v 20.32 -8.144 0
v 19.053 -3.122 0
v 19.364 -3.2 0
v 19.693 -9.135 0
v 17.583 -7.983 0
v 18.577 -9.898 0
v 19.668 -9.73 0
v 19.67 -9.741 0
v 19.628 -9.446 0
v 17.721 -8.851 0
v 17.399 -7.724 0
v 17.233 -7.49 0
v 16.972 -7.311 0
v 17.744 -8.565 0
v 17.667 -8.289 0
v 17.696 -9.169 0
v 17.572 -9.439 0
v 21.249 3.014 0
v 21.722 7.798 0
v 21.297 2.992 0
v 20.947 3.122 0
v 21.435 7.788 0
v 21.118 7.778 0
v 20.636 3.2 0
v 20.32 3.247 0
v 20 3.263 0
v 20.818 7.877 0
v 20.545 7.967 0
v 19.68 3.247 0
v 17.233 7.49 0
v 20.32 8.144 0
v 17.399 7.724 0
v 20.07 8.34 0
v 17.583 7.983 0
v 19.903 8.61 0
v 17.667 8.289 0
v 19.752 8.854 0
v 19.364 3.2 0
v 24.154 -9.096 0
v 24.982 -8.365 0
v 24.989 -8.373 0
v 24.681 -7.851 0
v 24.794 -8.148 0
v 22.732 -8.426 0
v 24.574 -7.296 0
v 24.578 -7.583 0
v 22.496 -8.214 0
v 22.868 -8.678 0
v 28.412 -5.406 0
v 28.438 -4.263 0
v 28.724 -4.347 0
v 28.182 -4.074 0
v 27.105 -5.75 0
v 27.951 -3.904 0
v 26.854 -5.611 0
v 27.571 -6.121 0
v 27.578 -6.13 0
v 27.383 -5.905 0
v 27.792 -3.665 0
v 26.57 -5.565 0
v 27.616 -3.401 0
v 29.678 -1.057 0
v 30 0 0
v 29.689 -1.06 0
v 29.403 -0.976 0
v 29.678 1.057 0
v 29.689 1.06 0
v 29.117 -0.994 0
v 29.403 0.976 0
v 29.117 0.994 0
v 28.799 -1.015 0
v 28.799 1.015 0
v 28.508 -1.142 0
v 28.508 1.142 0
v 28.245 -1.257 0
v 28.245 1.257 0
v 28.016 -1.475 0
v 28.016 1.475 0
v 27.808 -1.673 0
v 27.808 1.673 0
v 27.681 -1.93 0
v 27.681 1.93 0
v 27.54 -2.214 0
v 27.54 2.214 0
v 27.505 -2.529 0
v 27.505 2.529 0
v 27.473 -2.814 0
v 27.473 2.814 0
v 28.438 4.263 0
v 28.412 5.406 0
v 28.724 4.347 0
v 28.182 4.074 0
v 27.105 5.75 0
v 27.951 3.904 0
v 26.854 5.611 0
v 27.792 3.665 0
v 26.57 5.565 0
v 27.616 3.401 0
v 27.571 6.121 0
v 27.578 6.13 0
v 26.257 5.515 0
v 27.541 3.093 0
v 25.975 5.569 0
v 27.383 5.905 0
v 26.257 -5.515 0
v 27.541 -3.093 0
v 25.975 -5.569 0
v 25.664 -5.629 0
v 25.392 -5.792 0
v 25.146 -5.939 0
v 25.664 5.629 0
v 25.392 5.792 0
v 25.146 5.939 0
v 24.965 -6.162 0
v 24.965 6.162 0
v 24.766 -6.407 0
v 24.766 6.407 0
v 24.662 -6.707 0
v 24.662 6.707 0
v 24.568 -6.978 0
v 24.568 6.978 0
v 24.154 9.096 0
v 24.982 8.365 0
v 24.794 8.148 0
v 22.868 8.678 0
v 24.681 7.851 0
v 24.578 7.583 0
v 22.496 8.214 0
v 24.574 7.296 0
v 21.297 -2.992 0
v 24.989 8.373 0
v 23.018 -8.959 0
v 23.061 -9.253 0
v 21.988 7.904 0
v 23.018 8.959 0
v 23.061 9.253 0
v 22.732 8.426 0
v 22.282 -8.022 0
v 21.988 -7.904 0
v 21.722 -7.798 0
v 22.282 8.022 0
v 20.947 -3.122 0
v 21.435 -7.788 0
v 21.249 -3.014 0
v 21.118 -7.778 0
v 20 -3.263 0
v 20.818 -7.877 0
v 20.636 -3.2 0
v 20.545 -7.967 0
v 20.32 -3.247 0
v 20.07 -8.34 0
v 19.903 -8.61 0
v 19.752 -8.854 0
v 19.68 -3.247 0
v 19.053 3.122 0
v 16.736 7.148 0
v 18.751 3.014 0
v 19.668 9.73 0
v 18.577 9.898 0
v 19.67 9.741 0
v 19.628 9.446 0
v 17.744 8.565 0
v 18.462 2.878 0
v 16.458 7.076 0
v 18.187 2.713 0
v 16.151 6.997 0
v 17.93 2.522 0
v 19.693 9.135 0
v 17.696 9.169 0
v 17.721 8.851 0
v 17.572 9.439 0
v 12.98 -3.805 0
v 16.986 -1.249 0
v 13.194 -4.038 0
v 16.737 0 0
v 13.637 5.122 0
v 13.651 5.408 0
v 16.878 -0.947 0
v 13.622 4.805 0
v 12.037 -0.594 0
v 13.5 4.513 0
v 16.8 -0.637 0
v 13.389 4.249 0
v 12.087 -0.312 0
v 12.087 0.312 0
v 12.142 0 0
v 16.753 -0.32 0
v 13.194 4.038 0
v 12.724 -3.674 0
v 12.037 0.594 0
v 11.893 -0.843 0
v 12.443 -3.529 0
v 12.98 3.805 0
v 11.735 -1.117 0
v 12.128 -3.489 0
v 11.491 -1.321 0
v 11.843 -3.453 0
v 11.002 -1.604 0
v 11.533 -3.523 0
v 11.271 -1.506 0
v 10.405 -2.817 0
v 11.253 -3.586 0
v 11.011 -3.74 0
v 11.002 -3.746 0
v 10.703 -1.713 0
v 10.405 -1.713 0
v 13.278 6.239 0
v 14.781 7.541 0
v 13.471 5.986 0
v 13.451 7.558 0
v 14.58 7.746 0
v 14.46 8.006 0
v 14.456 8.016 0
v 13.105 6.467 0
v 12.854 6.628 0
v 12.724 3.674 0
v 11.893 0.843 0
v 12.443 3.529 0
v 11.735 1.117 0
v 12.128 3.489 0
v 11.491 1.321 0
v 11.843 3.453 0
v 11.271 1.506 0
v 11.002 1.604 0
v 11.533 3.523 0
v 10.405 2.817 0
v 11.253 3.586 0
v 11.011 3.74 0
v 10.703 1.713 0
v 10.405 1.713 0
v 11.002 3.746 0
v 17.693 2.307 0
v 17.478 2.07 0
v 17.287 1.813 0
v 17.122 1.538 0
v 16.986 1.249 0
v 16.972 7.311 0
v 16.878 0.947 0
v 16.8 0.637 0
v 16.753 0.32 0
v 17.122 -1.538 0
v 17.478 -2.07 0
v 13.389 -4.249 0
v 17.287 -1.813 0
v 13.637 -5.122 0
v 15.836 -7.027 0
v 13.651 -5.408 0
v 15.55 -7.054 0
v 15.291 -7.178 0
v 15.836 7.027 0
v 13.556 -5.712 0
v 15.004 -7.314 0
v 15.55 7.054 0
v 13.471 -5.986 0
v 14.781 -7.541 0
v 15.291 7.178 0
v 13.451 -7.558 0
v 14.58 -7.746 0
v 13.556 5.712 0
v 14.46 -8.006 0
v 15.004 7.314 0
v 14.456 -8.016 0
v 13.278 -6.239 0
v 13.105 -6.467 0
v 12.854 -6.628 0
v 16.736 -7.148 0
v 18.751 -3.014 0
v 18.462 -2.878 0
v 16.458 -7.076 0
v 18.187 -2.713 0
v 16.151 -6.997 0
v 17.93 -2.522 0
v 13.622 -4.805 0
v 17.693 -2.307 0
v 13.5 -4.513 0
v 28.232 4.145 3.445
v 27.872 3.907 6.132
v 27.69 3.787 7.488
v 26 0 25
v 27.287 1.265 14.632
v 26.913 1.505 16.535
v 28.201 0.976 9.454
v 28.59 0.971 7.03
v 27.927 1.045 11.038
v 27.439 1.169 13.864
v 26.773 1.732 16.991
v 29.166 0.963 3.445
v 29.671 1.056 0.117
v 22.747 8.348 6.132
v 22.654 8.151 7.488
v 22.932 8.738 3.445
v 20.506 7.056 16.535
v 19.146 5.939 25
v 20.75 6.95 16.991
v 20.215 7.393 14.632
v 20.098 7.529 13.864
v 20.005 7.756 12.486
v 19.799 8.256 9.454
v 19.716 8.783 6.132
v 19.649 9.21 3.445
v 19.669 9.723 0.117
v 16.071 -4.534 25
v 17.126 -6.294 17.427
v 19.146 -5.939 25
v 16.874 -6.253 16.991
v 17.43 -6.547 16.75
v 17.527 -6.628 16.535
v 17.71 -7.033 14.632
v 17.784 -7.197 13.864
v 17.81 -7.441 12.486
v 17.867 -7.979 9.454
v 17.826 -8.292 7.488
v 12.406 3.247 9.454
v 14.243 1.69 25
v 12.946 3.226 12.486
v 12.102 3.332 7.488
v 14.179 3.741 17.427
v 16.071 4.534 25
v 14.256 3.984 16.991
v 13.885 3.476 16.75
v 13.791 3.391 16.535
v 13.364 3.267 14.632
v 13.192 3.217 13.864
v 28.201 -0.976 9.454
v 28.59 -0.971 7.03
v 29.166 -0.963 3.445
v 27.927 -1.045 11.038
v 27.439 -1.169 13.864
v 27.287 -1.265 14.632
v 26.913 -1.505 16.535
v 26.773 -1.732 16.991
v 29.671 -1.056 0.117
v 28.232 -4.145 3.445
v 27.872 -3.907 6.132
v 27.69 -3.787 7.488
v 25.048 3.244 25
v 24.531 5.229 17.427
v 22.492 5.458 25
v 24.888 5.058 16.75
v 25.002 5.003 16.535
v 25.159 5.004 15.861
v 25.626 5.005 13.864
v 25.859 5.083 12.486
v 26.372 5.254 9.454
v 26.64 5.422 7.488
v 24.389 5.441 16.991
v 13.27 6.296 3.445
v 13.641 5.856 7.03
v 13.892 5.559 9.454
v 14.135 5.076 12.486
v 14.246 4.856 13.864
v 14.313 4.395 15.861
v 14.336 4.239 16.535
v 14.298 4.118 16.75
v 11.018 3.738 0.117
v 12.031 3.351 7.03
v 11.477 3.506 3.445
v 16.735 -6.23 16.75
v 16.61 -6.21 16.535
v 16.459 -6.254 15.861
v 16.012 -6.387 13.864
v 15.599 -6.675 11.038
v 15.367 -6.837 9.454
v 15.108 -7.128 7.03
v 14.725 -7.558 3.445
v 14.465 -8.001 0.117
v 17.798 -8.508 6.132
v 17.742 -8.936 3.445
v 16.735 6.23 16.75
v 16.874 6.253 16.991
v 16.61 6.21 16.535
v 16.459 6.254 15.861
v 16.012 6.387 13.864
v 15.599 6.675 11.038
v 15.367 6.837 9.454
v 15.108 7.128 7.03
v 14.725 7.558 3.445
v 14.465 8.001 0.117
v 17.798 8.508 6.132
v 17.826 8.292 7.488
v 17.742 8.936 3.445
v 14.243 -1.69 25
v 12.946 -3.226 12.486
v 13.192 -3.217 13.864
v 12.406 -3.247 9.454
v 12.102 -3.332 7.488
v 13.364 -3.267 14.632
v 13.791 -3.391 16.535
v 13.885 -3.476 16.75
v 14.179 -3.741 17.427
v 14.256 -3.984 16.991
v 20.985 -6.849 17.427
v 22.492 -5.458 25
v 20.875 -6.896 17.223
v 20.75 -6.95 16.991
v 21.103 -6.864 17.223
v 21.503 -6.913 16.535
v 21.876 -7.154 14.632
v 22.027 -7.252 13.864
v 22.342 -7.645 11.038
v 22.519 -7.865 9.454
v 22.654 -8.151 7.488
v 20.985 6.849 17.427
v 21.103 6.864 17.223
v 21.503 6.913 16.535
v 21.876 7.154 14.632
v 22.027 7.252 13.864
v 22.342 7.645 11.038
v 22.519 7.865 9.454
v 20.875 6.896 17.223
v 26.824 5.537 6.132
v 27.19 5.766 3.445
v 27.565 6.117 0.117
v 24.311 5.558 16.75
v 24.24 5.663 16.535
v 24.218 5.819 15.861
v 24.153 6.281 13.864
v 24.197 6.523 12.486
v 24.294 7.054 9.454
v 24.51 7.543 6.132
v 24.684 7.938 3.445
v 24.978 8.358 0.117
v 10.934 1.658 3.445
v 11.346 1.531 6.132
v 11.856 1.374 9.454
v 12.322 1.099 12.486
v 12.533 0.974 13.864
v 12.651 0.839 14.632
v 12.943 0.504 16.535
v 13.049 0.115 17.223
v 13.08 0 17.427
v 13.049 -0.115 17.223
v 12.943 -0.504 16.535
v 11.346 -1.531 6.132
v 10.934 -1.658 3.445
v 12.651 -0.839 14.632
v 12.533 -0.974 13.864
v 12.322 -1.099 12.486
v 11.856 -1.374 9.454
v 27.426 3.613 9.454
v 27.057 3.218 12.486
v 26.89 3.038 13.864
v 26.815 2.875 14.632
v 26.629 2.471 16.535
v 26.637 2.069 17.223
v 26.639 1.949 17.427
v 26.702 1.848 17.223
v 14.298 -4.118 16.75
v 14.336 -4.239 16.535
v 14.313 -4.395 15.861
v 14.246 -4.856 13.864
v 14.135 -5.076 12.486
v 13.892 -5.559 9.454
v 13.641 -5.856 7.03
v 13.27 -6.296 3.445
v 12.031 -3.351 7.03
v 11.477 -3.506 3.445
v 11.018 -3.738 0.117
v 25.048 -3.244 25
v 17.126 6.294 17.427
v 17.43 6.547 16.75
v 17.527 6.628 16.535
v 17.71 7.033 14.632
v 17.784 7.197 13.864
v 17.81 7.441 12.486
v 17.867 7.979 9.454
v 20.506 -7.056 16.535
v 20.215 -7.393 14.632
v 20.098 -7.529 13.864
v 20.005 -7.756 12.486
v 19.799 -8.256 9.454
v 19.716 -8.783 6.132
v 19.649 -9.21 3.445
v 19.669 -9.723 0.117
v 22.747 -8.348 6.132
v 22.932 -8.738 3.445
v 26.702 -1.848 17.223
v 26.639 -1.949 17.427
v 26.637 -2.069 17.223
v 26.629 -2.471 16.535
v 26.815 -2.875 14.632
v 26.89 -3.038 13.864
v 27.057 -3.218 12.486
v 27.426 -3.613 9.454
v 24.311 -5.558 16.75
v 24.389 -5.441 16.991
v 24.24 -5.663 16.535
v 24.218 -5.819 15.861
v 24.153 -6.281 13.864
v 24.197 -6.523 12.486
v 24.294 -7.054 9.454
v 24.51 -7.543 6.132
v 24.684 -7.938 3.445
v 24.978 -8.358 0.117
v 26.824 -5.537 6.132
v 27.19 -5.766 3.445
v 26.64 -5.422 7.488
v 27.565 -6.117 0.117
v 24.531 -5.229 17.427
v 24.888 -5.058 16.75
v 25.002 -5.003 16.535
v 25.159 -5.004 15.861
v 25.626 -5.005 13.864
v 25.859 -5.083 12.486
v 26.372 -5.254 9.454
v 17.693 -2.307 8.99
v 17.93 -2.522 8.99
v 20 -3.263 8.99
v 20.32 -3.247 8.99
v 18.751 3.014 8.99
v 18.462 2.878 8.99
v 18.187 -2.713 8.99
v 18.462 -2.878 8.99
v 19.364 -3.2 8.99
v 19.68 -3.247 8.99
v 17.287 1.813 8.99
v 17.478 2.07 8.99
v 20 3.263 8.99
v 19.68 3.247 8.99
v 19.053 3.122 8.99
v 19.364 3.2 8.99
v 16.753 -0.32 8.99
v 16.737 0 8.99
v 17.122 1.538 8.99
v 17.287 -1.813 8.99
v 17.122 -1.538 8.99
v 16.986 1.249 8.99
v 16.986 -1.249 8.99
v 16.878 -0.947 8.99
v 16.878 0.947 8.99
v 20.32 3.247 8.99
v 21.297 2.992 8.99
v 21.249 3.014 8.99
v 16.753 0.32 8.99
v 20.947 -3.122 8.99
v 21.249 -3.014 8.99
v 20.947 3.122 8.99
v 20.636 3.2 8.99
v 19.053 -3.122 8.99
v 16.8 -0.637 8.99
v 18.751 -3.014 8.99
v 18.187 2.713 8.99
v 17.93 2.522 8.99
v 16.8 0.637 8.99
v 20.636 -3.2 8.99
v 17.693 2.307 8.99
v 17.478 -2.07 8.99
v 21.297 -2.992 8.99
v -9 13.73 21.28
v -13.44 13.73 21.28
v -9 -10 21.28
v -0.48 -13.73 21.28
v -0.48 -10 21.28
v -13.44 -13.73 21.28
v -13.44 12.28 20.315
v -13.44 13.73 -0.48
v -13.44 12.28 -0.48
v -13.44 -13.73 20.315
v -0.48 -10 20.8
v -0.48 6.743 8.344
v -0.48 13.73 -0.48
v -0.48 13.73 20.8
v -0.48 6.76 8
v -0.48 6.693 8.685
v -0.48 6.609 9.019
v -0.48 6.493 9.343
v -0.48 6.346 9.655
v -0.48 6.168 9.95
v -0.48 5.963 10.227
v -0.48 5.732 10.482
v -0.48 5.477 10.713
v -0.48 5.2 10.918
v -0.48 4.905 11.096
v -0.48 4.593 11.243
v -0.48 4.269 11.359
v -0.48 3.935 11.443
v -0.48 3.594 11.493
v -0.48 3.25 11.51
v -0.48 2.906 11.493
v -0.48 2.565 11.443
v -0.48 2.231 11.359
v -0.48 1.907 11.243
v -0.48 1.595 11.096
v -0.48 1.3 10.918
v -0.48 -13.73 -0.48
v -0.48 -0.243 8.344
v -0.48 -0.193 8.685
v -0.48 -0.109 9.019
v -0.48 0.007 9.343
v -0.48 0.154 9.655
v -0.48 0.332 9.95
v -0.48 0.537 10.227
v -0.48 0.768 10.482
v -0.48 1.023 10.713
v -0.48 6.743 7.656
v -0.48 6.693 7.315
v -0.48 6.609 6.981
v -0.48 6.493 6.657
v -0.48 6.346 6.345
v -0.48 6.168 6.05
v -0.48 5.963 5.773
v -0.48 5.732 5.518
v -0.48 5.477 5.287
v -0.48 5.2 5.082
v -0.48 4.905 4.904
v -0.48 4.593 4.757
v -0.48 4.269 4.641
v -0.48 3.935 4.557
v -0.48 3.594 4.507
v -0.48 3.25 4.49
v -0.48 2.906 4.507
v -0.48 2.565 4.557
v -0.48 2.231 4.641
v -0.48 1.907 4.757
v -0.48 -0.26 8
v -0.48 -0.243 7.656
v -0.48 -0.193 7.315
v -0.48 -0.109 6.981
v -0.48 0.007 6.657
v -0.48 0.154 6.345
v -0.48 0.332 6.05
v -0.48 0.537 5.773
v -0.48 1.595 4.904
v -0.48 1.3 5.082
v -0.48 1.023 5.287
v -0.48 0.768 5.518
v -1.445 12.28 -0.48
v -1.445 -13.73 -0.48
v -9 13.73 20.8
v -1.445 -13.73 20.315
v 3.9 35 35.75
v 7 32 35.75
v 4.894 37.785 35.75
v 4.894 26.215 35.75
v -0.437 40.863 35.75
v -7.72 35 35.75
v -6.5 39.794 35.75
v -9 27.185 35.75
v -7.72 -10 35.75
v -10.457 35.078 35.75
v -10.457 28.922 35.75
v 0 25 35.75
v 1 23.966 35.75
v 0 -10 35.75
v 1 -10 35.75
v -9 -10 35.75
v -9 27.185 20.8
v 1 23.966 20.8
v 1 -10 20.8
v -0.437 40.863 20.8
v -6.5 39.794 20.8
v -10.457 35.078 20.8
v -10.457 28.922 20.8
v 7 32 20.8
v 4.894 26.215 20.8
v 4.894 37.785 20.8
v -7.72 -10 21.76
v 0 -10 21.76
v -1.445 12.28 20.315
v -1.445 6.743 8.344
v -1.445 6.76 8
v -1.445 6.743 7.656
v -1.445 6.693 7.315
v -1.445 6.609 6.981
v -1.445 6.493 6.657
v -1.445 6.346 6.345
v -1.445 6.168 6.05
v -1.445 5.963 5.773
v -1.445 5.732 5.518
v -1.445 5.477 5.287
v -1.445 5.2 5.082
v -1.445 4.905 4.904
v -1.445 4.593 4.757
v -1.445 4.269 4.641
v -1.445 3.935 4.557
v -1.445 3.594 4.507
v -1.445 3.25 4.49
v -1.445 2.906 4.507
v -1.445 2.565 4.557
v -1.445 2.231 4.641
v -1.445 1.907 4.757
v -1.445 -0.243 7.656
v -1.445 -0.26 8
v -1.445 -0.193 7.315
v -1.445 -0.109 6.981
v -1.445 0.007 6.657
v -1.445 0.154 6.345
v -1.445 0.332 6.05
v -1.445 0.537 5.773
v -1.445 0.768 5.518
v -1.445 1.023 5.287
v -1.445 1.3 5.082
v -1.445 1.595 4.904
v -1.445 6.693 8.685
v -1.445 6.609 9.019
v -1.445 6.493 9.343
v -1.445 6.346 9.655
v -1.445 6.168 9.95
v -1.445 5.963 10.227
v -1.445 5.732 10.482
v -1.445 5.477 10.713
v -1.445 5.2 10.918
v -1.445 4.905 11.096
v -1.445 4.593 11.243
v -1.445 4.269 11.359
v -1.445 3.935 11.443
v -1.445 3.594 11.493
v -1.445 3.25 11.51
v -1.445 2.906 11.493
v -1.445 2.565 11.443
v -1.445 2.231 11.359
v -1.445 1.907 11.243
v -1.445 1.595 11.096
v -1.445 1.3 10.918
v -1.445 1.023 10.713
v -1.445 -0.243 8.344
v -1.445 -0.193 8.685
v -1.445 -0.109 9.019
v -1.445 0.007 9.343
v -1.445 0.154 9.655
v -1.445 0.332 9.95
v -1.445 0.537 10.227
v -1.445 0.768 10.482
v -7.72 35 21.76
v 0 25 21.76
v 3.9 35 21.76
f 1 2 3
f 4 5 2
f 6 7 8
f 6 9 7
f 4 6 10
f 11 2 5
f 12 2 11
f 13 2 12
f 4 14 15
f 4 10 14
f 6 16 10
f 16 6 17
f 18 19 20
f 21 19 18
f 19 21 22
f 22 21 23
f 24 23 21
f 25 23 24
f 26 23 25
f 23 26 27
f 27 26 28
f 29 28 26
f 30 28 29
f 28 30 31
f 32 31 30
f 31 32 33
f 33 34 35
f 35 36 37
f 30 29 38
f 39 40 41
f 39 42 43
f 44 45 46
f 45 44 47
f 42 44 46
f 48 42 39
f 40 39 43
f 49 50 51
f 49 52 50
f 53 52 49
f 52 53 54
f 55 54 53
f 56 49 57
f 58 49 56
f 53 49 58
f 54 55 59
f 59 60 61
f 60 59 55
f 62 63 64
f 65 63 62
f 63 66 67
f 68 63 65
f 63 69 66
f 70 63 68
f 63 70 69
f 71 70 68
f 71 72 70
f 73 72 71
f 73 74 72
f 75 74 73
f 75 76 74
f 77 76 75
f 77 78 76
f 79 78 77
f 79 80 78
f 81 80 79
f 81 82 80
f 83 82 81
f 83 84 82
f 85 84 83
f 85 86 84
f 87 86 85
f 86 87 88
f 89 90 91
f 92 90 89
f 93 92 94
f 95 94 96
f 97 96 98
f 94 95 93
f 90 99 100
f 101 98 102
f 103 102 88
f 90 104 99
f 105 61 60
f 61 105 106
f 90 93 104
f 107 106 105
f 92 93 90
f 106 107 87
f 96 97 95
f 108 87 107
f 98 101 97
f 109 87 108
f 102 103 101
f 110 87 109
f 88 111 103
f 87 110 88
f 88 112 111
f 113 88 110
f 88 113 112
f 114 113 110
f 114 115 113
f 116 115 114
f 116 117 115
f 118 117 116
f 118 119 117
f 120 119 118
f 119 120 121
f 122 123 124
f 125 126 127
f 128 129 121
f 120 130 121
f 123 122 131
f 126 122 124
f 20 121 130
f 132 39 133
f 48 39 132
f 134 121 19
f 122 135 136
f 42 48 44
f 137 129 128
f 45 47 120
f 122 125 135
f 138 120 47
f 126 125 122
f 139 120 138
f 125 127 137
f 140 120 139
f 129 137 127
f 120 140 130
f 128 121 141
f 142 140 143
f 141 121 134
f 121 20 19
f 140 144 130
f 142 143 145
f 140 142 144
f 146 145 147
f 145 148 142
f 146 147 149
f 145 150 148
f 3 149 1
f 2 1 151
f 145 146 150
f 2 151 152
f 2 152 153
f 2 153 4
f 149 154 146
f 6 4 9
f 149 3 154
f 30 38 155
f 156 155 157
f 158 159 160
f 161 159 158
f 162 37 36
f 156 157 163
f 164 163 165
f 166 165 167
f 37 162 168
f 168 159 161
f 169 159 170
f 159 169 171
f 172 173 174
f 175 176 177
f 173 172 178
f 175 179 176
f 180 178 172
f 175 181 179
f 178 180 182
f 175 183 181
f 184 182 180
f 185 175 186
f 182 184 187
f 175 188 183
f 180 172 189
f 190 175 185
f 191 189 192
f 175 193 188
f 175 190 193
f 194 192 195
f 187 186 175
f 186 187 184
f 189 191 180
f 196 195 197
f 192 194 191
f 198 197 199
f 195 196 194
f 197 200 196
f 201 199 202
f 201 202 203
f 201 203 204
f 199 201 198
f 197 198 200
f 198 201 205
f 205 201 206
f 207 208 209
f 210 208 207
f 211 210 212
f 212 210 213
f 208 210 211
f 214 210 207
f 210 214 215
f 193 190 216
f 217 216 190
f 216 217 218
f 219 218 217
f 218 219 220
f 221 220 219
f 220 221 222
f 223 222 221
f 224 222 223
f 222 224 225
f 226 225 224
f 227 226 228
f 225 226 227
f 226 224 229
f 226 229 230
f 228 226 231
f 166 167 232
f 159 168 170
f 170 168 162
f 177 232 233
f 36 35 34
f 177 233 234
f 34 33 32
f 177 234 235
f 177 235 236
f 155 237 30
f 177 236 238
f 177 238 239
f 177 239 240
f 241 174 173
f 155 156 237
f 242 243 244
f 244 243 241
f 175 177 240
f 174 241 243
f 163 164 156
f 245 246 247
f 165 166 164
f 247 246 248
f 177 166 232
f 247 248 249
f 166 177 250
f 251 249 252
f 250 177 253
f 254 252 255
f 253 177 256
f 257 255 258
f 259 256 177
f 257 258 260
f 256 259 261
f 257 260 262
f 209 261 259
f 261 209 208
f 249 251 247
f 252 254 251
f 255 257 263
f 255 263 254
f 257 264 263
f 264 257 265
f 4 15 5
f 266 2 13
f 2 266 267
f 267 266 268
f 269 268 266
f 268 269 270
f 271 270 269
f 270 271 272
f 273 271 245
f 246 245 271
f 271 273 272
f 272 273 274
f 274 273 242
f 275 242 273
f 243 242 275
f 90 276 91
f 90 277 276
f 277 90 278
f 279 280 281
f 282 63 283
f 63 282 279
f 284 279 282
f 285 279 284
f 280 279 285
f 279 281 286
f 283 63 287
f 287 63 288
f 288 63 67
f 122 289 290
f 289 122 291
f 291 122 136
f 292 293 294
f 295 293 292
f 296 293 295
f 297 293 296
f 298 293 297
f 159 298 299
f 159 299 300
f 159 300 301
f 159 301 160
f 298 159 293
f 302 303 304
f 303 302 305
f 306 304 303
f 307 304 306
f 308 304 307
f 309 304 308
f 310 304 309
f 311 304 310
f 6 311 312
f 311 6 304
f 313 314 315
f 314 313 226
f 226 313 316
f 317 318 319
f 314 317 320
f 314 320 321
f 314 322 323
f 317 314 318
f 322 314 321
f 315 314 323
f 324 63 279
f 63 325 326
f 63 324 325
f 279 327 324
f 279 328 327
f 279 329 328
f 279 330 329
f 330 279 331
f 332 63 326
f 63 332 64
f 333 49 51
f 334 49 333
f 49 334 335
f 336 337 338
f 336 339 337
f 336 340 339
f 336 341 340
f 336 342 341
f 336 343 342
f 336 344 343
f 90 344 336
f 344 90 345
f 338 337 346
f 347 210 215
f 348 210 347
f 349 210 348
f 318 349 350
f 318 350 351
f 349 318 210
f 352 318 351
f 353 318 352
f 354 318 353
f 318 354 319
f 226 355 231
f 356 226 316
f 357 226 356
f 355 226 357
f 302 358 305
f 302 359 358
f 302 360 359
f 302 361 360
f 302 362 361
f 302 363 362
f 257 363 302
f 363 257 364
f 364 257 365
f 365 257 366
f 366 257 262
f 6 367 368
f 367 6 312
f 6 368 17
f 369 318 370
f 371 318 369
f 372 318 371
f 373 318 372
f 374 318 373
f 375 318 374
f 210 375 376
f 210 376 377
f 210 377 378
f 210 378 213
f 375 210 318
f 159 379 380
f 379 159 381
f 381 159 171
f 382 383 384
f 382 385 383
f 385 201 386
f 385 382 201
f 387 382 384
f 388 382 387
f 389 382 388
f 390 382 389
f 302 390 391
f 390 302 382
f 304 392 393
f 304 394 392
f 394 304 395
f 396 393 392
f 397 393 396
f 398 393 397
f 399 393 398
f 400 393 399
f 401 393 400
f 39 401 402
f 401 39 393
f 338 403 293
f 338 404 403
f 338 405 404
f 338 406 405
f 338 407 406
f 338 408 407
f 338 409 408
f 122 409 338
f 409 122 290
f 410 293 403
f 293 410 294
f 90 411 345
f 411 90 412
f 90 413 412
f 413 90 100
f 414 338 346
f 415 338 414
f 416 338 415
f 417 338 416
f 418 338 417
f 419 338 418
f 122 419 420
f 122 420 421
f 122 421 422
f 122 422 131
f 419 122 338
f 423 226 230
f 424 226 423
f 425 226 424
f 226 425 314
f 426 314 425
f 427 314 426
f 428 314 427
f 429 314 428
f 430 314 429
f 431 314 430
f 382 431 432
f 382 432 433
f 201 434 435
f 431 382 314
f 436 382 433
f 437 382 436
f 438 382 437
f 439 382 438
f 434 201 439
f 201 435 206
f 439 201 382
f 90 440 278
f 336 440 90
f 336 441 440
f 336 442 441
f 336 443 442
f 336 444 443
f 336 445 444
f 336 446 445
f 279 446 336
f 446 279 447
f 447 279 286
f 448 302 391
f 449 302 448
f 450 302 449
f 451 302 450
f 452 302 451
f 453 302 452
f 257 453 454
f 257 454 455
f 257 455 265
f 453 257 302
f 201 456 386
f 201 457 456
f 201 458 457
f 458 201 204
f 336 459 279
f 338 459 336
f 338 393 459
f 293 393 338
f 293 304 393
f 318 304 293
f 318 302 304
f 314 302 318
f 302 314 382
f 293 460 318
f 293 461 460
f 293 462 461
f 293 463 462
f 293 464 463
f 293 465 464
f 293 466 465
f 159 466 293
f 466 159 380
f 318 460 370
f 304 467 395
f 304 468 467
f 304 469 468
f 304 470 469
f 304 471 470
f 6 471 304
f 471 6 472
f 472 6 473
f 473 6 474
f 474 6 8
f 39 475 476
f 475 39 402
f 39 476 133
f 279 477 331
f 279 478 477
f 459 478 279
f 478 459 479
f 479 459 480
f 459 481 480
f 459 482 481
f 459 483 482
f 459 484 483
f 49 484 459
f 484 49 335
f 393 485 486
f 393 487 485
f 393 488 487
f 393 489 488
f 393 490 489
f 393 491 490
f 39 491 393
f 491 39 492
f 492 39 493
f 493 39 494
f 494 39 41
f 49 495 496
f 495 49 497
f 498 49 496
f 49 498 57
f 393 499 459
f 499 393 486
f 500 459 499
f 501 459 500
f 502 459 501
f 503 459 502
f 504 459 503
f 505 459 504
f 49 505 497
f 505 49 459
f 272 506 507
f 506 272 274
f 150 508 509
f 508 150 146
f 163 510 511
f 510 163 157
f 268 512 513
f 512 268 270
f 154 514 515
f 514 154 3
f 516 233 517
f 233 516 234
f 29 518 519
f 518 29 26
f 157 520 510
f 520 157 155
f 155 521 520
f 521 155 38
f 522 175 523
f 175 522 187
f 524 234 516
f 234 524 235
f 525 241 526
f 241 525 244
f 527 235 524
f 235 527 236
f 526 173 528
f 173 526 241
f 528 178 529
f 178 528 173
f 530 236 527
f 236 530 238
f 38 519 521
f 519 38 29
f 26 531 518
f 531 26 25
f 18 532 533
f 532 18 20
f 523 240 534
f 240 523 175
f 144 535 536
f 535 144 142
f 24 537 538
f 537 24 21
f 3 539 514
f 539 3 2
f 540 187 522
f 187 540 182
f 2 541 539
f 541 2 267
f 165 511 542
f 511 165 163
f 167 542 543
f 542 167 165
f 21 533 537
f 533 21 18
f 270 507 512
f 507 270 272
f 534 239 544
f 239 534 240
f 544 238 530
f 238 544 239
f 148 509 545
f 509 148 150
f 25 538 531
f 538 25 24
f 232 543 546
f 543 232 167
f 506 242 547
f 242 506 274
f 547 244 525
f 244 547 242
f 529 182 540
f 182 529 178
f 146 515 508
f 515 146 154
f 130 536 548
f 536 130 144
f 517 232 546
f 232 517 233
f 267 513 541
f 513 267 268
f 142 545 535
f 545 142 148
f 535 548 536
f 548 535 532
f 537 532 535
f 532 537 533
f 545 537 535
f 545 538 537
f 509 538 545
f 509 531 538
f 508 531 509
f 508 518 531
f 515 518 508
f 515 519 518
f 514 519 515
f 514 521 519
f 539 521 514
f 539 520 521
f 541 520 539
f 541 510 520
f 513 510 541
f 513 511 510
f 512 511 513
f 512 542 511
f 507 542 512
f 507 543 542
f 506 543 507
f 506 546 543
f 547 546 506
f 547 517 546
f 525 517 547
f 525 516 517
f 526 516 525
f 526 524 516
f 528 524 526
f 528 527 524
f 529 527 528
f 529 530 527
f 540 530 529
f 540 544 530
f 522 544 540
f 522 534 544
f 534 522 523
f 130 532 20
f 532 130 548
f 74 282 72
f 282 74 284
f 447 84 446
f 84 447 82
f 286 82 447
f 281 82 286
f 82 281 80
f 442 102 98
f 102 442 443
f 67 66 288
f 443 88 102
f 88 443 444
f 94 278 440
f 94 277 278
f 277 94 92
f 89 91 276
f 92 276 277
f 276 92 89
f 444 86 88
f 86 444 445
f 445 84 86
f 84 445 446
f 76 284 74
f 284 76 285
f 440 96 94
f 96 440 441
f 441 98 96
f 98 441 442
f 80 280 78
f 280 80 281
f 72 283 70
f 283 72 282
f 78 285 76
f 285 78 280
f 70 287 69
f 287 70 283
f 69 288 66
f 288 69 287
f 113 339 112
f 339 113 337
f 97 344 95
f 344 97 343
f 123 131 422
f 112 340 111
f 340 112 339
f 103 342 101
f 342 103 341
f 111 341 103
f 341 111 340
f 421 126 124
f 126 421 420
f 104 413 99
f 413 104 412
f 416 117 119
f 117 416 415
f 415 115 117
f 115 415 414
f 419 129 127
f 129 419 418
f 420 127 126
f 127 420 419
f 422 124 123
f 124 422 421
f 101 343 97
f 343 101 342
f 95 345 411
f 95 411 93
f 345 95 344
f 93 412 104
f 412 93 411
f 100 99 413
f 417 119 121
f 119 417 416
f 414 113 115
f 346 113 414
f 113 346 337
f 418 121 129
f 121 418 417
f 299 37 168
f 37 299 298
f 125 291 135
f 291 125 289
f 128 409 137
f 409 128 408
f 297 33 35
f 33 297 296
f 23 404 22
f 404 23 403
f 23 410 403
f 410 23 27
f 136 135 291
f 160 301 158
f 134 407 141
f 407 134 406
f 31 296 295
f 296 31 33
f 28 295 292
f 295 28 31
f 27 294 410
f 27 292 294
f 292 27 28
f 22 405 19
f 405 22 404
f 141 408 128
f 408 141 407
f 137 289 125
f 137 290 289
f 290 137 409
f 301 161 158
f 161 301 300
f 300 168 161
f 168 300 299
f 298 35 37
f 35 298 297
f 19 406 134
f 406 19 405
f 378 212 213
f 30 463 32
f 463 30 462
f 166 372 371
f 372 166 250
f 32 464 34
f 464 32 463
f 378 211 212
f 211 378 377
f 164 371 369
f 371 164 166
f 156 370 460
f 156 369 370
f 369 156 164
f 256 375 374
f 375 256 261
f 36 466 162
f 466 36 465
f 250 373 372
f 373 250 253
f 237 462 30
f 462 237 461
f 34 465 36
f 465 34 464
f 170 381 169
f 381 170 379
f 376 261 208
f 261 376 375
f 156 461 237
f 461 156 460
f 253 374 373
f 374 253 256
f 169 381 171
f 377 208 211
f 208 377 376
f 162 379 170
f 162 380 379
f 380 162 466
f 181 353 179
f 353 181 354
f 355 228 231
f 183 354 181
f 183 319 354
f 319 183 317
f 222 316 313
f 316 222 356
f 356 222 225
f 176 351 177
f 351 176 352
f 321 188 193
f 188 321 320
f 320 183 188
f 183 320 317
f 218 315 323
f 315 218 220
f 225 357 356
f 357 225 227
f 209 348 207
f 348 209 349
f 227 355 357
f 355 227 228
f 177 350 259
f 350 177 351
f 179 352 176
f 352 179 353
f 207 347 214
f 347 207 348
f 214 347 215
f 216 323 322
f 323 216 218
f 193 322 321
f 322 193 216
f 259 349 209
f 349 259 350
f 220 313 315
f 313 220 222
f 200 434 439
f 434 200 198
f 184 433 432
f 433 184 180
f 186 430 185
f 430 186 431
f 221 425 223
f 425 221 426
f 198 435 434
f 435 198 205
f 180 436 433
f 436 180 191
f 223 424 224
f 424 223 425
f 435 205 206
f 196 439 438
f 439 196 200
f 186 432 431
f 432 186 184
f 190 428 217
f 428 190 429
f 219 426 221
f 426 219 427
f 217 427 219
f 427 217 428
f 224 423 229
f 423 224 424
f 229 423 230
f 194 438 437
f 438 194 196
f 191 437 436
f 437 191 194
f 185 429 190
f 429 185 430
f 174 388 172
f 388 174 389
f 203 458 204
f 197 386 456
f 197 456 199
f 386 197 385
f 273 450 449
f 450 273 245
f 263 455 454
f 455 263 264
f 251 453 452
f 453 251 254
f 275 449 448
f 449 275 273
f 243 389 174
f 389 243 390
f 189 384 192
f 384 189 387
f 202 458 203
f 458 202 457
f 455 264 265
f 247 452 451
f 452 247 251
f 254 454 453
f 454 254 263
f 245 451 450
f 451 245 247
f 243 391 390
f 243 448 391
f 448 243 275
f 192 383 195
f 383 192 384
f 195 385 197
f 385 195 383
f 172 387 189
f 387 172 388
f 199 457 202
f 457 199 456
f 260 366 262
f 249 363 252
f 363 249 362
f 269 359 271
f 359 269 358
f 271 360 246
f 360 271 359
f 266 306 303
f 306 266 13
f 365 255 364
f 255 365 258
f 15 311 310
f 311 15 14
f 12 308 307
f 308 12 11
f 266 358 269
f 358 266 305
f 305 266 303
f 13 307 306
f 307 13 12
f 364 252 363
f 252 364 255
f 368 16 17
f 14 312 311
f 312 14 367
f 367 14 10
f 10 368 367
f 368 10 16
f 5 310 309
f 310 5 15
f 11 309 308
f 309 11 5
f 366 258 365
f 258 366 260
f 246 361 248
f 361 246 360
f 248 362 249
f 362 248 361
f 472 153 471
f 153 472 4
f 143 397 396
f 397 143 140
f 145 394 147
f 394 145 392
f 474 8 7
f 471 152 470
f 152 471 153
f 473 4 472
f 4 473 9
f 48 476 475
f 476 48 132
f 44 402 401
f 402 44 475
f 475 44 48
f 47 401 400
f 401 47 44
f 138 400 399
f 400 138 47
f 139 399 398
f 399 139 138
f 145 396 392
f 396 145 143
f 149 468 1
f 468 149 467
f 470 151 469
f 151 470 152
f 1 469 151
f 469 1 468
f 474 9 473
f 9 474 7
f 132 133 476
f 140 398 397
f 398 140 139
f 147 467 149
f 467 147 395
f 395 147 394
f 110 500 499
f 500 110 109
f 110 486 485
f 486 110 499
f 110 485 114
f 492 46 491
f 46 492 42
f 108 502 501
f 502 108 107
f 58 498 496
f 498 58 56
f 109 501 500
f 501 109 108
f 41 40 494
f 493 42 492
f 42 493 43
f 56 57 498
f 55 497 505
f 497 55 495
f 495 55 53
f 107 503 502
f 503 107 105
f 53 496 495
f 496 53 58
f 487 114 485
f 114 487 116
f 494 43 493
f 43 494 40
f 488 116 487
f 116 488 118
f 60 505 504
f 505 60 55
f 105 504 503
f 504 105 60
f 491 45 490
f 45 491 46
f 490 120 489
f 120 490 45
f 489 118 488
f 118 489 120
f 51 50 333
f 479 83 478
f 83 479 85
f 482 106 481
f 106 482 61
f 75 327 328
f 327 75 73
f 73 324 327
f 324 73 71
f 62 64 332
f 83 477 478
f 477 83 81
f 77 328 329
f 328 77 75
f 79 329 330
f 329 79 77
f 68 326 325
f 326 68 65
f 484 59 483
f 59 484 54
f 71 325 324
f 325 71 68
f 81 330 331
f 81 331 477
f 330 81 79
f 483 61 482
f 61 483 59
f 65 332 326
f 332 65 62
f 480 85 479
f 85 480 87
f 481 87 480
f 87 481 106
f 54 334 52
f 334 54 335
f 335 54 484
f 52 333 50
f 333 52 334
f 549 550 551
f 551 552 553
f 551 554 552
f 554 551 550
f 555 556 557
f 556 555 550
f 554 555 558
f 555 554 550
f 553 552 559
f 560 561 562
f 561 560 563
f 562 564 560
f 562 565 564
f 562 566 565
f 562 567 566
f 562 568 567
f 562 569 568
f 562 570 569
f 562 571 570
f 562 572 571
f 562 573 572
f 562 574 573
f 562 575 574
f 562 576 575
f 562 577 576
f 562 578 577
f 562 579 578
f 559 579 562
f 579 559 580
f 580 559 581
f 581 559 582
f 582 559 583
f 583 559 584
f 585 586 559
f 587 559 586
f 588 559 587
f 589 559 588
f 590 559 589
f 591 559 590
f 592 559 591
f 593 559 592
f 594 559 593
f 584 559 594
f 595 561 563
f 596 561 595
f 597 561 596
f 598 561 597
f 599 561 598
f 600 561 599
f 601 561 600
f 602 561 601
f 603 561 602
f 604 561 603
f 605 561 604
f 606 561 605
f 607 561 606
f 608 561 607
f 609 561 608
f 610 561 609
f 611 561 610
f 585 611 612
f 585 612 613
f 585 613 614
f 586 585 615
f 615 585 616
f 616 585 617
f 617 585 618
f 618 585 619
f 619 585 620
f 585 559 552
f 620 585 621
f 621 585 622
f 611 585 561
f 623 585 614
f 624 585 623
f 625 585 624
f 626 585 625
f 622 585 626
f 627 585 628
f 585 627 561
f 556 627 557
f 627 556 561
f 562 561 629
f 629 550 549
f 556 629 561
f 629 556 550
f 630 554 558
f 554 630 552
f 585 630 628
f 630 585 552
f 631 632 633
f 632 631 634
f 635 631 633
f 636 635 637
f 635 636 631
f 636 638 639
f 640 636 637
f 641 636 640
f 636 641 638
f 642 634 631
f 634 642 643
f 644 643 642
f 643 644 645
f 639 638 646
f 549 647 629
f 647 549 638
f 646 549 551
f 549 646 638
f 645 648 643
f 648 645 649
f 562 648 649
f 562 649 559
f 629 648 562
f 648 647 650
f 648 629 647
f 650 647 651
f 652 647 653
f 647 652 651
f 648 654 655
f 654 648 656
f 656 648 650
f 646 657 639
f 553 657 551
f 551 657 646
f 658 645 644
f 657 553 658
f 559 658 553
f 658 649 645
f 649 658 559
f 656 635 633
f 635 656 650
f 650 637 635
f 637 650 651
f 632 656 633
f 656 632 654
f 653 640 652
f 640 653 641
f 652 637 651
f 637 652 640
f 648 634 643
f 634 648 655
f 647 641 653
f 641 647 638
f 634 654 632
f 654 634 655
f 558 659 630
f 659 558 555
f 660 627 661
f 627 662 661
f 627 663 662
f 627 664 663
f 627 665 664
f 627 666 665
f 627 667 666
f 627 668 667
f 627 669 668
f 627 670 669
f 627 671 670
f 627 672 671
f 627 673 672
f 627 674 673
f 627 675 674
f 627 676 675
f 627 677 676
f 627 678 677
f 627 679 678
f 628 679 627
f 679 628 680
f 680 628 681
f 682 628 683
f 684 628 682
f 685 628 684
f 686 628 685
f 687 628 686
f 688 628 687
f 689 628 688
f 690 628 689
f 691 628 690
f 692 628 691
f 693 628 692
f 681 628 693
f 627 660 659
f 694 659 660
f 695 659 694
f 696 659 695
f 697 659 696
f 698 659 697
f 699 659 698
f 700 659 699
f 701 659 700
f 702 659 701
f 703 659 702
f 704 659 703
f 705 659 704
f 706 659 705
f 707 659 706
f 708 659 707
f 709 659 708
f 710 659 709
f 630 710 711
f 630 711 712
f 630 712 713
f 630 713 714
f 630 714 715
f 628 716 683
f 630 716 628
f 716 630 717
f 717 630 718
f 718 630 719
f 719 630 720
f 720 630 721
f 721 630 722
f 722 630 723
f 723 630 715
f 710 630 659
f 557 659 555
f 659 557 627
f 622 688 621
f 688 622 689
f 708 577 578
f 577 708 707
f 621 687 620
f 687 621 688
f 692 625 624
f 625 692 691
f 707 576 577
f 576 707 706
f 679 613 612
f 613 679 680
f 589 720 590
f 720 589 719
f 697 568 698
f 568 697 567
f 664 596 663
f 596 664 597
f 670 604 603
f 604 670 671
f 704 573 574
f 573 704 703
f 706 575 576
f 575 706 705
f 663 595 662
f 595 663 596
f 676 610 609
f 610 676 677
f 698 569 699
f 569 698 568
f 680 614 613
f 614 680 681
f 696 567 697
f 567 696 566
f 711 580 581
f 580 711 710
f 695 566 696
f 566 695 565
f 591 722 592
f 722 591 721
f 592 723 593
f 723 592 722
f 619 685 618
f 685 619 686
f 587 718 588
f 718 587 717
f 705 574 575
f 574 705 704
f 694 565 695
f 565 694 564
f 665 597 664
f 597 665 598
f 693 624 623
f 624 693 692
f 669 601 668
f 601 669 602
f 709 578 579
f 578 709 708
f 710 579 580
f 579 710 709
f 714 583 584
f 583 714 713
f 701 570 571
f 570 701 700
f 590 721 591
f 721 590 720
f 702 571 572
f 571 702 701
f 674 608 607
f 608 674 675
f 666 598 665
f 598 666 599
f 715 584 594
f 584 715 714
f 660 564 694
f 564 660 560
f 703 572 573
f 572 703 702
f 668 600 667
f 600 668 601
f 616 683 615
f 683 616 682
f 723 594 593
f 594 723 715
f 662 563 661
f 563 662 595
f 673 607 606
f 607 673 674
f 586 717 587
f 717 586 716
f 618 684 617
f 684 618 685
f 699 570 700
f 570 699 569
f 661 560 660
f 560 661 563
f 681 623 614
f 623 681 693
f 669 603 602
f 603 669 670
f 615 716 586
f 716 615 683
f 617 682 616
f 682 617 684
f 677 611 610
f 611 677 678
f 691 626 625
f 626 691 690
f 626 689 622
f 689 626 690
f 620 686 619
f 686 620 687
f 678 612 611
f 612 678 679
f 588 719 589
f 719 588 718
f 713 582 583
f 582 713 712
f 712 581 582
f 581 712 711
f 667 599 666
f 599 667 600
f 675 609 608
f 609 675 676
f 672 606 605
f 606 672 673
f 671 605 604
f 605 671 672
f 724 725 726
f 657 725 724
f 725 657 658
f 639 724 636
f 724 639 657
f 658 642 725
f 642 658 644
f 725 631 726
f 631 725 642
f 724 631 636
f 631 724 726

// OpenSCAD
// this is quick and dirty, please don't shame me
// I can do better!
// pull requests welcome

Gap = 0.12;
ExtrusionWidth = 0.48;
LayerHeight = 0.2;
Body = [20.8, 26.5, 12];
Wall = 2* ExtrusionWidth;
ShaftDiam = 6.78 + 2* Gap;
PotiPos = [Body.x/-2 +8, Body.y/2-10, 0];
MountOffsetFromTop = 25;
MountWidth = 14;

Epsilon = 0.01;

module main() {
    difference() {
        union() { // positive
            // housing +
            translate([0,0,Body.z/2+Wall])
                cube(Body + [1,1,1]*Wall, center=true);
            
            // X220 mount +
            translate([Body.x/2,-10,-1])
                cube([MountWidth+Wall-Epsilon, MountOffsetFromTop+20, 10]);
            // top part +
            translate([(Body.x+MountWidth+Wall-Epsilon)/2,MountOffsetFromTop+7,2])
                rotate([0,90,0])
                    cylinder(d=18, h=MountWidth+Wall-Epsilon, center=true, $fn=9);
            
        }
        union() { // negative
            // inside -
            translate([-0.5,-1,0.5]*(Wall+Epsilon)+[0,0,Body.z/2+Wall])
                cube(Body, center=true);
            
            // poti -
            translate(PotiPos)
                cylinder(d=ShaftDiam, h=4*Body.z, center=true);
            
            // X220 mount -
            translate([MountWidth/2+Body.x/2+Wall,MountOffsetFromTop,0])
                rotate([0,90,0])
                    rotate([0,0,90])
                        #linear_extrude(MountWidth, center=true)
                            X220Bezel();
        }
    }
}

module X220Bezel() {
    baseThickness = 7.6 + Gap;
    topThickness = 11.5 + Gap;
    topRampH = 10;
    baseLength = 100;
    polygon([
        [-baseLength, 0],
        [0, 0],
        [topRampH, -topThickness + baseThickness],
        [topRampH, baseThickness],
        [-baseLength, baseThickness]
        ]);
}

module knob() {
    ShaftDiam = 6.0 * (6/5.62) + Gap;
    ShaftAcross = 4.5 + Gap/2;
    ShaftLength = 9;
    KnobLength = 25;
    KnobBaseDiam = 20;
    notches = 11;
    
    translate([KnobBaseDiam,0,0])
    difference() {
        union() {
            // Shaft Housing +
            cylinder(d=ShaftDiam+2*Wall, h=ShaftLength+Wall);
            
            // Knob Body +
            cylinder(d1=KnobBaseDiam, d2=KnobBaseDiam*0.6, h=KnobLength, $fn=notches);
            
        }
        translate([0,0,-Epsilon]) {
            // inside -
            difference() {
                cylinder(d=ShaftDiam, h=ShaftLength);
                translate([-ShaftDiam/2 + ShaftAcross, -ShaftDiam/2-Epsilon, -Epsilon])
                    cube((ShaftDiam+2*Epsilon)*[1,1,0]+[0,0,ShaftLength+2*Epsilon]);
            }
            // notches -
            for(i=[0:notches-1])
                rotate([0,0,360*(i+0.5)/notches])
                    translate([KnobBaseDiam/2+0.3,0,-10])
                        rotate([0,-4,0])
                            cylinder(d1=5, d2=2.6, h=KnobLength*3, center=true,$fn=18);
        }
    }
}

$fn=64;
knob();

translate([0,0,Body.x/2])
rotate([0,-90,0])
    main();
